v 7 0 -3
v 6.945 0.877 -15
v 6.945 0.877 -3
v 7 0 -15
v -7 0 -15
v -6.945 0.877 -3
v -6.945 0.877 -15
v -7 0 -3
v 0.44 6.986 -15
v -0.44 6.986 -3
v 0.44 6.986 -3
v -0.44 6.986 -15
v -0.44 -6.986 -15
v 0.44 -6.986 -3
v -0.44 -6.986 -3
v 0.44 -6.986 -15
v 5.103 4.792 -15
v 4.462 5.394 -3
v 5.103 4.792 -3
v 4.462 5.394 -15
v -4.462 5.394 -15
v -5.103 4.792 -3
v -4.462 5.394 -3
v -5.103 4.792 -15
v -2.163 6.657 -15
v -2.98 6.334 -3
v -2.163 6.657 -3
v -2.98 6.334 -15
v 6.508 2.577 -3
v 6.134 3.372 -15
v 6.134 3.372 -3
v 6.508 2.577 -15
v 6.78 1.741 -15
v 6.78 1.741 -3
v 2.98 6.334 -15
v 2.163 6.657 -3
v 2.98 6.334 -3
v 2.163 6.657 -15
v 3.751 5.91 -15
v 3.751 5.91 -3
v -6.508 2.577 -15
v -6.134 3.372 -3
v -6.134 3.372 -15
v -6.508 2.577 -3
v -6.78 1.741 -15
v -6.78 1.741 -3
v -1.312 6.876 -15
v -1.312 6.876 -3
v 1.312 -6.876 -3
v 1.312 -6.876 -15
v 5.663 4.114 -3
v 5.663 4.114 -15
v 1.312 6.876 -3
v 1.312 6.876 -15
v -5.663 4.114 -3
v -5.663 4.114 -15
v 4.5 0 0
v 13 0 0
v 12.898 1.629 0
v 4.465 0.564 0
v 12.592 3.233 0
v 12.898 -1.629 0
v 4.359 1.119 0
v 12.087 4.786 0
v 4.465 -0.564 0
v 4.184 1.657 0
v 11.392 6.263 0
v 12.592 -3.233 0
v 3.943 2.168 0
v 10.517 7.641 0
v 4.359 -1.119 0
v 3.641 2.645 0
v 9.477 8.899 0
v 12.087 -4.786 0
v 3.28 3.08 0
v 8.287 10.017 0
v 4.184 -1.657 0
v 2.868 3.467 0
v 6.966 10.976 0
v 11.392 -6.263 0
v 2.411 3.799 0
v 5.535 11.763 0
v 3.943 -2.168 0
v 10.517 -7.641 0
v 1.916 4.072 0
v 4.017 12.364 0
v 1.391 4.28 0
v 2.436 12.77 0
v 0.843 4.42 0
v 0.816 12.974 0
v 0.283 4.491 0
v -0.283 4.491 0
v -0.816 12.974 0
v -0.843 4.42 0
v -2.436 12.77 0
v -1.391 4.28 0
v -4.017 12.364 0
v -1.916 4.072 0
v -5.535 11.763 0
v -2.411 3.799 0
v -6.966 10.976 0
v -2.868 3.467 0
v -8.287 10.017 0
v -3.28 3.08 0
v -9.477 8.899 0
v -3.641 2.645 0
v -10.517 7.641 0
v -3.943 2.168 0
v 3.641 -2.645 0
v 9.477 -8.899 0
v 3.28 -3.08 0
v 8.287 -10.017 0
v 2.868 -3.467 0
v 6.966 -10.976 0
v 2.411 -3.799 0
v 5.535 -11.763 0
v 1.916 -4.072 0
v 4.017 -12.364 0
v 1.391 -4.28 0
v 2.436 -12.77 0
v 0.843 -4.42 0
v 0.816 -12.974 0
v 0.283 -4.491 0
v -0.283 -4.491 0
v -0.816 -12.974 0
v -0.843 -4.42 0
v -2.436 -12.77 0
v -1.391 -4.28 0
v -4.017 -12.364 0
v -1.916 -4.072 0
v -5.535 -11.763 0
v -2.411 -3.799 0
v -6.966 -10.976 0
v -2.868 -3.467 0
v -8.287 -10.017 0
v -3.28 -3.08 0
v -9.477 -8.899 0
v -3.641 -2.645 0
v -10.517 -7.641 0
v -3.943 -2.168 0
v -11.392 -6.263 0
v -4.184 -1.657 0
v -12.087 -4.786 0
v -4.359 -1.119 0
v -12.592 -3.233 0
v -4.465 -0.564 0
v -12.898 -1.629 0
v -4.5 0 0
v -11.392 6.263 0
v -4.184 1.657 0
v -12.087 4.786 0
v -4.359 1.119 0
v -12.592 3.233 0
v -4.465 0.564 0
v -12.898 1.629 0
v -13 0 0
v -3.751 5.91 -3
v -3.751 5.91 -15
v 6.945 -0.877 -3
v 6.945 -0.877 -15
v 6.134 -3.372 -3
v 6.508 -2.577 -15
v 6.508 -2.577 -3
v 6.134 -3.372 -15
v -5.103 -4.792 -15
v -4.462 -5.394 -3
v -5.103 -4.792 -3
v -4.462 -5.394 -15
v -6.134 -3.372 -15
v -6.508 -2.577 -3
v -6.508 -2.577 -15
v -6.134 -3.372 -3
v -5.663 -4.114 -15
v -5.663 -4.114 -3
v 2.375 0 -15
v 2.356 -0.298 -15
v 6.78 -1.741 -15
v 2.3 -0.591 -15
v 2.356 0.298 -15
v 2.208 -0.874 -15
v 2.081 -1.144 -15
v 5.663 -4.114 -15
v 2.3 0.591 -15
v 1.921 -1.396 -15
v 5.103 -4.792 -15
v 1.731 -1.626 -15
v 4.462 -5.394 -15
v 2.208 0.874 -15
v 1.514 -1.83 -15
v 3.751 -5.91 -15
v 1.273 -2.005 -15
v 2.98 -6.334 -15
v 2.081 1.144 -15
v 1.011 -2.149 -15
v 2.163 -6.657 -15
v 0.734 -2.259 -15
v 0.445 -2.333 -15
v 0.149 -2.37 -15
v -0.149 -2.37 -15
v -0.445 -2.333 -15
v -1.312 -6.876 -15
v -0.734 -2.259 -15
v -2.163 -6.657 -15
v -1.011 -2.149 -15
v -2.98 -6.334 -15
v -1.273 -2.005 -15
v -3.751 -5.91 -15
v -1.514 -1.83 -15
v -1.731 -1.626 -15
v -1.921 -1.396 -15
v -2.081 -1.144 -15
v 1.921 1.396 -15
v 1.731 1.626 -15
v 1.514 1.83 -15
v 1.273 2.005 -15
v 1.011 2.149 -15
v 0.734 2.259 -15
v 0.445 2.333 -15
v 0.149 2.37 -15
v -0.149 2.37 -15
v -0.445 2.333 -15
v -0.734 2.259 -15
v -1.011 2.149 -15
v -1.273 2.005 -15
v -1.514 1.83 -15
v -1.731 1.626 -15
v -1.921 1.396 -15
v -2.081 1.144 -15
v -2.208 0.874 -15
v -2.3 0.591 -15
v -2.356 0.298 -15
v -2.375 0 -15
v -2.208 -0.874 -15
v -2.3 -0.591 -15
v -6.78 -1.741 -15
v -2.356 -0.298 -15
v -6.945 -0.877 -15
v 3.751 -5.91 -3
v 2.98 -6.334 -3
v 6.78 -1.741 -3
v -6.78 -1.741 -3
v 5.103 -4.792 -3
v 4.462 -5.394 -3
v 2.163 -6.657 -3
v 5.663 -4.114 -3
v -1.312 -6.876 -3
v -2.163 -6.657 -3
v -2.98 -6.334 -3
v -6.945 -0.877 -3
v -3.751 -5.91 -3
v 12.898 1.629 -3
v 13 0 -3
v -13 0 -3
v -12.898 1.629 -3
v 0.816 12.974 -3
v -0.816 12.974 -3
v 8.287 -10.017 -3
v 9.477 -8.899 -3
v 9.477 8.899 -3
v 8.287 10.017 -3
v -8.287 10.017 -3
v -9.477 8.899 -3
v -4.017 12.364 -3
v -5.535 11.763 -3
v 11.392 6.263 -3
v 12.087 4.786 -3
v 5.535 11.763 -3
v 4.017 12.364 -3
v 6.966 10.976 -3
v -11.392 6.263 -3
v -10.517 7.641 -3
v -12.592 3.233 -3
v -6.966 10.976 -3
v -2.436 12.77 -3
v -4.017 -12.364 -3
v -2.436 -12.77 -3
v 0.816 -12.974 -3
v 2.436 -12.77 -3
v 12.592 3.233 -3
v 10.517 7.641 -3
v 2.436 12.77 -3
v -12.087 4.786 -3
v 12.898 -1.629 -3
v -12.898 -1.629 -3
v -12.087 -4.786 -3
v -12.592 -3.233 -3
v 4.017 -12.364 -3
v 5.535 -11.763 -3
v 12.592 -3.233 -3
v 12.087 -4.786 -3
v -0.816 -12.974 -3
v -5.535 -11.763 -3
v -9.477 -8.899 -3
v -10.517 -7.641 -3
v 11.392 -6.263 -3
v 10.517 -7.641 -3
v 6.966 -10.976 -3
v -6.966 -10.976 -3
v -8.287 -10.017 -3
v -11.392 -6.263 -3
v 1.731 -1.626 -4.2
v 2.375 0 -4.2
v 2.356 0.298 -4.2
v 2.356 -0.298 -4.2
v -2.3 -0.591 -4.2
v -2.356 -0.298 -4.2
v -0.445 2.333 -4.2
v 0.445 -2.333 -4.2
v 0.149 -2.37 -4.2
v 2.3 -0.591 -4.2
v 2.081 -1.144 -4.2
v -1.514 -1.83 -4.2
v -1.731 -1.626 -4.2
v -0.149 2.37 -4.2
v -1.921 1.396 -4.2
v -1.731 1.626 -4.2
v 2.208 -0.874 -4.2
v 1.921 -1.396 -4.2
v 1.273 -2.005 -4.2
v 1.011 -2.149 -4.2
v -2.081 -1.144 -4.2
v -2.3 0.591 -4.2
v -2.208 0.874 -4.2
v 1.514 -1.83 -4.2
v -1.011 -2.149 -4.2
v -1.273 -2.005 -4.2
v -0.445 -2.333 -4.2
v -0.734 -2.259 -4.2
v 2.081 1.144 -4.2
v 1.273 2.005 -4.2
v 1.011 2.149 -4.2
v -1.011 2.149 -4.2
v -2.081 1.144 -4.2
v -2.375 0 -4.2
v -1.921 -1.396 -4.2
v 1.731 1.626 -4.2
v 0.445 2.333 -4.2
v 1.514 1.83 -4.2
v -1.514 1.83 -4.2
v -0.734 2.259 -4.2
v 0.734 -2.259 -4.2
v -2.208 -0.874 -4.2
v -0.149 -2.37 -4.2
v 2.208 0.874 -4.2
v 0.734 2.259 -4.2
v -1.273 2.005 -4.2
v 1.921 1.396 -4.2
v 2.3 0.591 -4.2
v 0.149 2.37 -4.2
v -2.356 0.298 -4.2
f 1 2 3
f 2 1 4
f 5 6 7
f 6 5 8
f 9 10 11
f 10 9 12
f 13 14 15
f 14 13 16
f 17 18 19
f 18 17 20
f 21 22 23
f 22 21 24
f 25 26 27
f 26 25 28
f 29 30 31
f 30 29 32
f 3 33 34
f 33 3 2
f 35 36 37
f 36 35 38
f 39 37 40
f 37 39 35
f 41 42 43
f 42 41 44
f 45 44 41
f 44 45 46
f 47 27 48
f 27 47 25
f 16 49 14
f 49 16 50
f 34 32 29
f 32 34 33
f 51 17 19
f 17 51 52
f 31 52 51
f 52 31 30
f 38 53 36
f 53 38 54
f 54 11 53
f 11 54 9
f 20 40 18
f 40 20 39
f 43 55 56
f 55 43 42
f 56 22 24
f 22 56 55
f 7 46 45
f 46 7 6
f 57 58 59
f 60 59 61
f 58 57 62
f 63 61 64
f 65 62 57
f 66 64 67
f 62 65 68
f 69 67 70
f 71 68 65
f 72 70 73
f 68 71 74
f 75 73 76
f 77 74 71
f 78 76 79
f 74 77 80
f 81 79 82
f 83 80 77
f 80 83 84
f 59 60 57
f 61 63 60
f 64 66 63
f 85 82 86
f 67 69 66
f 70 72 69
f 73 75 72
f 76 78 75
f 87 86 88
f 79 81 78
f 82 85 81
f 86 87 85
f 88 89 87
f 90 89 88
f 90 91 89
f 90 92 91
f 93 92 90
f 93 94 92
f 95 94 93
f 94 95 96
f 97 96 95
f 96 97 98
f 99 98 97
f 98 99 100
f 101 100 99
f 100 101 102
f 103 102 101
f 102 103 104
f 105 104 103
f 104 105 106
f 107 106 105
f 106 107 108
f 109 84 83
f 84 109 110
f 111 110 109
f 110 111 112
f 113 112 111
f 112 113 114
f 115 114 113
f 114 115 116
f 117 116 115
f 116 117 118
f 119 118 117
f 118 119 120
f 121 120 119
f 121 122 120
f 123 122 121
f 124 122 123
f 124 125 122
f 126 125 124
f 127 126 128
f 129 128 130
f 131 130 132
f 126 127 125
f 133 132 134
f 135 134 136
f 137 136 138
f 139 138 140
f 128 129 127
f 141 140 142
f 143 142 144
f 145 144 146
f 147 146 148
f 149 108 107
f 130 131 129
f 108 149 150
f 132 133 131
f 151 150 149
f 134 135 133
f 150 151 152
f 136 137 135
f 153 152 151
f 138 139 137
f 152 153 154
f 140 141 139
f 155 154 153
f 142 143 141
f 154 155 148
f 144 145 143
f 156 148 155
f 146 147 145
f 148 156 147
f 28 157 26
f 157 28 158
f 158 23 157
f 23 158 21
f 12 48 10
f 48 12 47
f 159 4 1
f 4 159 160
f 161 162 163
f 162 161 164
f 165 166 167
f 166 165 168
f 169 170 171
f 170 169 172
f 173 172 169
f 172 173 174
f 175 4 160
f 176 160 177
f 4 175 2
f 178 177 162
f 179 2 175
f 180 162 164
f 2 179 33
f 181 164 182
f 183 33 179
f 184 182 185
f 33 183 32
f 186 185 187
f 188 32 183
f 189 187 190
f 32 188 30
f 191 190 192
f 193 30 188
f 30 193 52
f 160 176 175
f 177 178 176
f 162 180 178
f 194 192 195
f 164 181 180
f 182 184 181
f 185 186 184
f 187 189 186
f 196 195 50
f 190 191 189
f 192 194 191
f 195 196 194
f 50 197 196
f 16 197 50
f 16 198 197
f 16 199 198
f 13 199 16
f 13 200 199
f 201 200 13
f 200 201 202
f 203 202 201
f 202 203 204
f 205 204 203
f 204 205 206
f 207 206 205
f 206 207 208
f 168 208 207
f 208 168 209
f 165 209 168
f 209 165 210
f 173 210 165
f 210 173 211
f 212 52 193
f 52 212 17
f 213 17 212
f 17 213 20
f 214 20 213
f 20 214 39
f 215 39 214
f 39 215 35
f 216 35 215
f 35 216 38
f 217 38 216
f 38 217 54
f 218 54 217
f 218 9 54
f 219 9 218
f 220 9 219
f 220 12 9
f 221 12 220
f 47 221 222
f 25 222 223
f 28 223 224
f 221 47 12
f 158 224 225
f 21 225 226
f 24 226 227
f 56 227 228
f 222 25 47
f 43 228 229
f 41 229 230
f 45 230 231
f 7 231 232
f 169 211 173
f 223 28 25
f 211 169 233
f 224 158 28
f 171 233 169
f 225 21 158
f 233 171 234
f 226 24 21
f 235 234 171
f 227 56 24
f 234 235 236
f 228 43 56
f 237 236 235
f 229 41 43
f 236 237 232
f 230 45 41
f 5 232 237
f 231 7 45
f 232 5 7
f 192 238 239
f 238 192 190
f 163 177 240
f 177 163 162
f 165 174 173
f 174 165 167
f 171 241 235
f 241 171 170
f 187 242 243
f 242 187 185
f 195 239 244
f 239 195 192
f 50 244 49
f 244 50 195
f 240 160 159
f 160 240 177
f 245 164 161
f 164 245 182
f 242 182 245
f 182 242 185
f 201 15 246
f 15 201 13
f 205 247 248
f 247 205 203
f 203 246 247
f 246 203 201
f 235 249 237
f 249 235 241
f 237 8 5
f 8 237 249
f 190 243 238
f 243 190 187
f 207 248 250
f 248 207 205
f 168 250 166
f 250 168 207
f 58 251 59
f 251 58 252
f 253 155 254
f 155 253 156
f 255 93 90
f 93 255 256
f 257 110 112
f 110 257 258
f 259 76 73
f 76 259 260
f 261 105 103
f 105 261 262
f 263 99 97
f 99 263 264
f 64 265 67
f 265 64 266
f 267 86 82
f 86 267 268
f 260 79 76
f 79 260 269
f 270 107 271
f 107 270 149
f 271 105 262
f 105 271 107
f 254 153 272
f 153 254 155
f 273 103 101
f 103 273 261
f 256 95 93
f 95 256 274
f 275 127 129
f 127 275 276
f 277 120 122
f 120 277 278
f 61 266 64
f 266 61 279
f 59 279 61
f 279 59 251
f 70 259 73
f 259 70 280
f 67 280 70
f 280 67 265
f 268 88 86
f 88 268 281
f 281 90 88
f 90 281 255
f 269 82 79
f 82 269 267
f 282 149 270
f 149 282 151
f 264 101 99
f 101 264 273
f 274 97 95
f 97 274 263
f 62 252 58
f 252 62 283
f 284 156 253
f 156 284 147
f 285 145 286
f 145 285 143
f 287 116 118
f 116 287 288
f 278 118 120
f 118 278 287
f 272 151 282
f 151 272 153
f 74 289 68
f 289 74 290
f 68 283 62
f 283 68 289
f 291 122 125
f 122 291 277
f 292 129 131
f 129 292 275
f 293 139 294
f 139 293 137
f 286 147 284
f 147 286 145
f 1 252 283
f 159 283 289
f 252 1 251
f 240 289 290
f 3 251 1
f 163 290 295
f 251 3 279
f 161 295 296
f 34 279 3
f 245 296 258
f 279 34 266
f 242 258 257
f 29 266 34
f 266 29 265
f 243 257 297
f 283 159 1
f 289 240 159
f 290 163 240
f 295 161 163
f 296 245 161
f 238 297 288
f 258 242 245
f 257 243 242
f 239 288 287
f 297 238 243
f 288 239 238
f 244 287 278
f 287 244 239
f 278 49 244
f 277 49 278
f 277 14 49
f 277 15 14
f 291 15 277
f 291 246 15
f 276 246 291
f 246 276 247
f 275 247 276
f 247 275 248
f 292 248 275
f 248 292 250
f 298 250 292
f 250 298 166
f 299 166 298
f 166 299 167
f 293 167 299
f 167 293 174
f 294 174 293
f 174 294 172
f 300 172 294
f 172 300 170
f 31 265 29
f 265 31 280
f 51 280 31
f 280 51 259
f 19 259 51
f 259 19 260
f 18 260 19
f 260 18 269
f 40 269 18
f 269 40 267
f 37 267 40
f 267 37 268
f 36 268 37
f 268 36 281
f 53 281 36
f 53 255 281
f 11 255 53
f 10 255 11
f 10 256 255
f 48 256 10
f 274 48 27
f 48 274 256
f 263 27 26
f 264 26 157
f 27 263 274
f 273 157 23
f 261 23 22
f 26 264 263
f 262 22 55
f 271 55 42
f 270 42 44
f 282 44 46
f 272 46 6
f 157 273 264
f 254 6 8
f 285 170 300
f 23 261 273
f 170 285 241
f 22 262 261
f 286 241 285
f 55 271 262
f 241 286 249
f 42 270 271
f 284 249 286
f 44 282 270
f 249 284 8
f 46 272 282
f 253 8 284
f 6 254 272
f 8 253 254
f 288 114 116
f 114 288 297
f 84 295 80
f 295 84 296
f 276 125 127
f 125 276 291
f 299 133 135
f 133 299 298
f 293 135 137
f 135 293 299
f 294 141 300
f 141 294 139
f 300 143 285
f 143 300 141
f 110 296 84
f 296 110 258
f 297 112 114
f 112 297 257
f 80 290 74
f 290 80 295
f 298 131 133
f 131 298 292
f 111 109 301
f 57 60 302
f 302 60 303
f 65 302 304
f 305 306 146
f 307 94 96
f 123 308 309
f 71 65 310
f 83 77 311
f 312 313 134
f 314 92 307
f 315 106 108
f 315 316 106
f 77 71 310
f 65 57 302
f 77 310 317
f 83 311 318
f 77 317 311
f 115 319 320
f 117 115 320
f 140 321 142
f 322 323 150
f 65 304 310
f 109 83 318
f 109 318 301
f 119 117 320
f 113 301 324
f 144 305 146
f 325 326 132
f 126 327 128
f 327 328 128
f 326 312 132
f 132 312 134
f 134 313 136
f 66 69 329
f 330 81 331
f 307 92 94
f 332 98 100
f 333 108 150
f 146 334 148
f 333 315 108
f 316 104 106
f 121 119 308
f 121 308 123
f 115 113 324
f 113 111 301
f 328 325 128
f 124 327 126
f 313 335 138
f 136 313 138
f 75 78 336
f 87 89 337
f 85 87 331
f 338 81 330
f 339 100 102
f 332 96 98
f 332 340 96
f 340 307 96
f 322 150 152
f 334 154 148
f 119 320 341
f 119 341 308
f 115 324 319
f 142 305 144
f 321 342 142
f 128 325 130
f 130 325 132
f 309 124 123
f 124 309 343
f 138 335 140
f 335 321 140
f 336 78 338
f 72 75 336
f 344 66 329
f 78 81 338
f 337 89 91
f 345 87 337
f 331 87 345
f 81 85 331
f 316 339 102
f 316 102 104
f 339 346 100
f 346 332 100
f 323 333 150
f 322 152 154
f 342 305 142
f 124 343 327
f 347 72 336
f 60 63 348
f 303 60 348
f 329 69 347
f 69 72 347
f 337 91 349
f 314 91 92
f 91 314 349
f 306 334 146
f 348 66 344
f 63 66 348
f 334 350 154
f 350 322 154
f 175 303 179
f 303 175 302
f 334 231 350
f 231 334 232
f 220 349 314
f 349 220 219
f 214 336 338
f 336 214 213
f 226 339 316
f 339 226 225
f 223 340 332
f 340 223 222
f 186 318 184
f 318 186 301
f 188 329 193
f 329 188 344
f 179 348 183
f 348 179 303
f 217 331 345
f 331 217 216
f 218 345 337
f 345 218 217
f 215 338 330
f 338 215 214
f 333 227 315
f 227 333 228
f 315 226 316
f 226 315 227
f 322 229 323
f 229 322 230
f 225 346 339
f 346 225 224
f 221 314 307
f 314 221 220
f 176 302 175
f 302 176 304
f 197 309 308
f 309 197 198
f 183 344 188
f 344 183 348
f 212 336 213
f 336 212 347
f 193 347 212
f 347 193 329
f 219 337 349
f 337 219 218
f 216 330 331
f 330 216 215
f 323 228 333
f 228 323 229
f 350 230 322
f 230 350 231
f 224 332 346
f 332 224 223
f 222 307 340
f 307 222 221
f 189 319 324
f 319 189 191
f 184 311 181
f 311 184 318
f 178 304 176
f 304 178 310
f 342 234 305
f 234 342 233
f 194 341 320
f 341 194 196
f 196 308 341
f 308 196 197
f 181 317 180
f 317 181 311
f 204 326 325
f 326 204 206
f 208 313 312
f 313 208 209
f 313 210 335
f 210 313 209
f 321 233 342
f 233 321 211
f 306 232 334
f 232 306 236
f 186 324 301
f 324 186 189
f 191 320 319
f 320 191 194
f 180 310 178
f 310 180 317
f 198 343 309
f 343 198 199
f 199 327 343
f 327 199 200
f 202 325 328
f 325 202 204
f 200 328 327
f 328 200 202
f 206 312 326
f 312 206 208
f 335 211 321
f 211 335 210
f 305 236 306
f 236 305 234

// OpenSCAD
$fn = 50;


difference() {
	union() {
		translate(v = [0, 0, -15.0000000000]) {
			cylinder(h = 15, r = 7.0000000000);
		}
		translate(v = [0, 0, -3.0000000000]) {
			cylinder(h = 3, r = 13.0000000000);
		}
	}
	union() {
		translate(v = [0, 0, 0]) {
			rotate(a = [0, 0, 0]) {
				difference() {
					union() {
						#translate(v = [0, 0, -15.0000000000]) {
							cylinder(h = 15, r = 2.2500000000);
						}
						#translate(v = [0, 0, -4.2000000000]) {
							cylinder(h = 4.2000000000, r1 = 2.3750000000, r2 = 4.5000000000);
						}
						#translate(v = [0, 0, -15.0000000000]) {
							cylinder(h = 15, r = 2.3750000000);
						}
						#translate(v = [0, 0, -15.0000000000]) {
							cylinder(h = 15, r = 2.2500000000);
						}
					}
					union();
				}
			}
		}
	}
}
